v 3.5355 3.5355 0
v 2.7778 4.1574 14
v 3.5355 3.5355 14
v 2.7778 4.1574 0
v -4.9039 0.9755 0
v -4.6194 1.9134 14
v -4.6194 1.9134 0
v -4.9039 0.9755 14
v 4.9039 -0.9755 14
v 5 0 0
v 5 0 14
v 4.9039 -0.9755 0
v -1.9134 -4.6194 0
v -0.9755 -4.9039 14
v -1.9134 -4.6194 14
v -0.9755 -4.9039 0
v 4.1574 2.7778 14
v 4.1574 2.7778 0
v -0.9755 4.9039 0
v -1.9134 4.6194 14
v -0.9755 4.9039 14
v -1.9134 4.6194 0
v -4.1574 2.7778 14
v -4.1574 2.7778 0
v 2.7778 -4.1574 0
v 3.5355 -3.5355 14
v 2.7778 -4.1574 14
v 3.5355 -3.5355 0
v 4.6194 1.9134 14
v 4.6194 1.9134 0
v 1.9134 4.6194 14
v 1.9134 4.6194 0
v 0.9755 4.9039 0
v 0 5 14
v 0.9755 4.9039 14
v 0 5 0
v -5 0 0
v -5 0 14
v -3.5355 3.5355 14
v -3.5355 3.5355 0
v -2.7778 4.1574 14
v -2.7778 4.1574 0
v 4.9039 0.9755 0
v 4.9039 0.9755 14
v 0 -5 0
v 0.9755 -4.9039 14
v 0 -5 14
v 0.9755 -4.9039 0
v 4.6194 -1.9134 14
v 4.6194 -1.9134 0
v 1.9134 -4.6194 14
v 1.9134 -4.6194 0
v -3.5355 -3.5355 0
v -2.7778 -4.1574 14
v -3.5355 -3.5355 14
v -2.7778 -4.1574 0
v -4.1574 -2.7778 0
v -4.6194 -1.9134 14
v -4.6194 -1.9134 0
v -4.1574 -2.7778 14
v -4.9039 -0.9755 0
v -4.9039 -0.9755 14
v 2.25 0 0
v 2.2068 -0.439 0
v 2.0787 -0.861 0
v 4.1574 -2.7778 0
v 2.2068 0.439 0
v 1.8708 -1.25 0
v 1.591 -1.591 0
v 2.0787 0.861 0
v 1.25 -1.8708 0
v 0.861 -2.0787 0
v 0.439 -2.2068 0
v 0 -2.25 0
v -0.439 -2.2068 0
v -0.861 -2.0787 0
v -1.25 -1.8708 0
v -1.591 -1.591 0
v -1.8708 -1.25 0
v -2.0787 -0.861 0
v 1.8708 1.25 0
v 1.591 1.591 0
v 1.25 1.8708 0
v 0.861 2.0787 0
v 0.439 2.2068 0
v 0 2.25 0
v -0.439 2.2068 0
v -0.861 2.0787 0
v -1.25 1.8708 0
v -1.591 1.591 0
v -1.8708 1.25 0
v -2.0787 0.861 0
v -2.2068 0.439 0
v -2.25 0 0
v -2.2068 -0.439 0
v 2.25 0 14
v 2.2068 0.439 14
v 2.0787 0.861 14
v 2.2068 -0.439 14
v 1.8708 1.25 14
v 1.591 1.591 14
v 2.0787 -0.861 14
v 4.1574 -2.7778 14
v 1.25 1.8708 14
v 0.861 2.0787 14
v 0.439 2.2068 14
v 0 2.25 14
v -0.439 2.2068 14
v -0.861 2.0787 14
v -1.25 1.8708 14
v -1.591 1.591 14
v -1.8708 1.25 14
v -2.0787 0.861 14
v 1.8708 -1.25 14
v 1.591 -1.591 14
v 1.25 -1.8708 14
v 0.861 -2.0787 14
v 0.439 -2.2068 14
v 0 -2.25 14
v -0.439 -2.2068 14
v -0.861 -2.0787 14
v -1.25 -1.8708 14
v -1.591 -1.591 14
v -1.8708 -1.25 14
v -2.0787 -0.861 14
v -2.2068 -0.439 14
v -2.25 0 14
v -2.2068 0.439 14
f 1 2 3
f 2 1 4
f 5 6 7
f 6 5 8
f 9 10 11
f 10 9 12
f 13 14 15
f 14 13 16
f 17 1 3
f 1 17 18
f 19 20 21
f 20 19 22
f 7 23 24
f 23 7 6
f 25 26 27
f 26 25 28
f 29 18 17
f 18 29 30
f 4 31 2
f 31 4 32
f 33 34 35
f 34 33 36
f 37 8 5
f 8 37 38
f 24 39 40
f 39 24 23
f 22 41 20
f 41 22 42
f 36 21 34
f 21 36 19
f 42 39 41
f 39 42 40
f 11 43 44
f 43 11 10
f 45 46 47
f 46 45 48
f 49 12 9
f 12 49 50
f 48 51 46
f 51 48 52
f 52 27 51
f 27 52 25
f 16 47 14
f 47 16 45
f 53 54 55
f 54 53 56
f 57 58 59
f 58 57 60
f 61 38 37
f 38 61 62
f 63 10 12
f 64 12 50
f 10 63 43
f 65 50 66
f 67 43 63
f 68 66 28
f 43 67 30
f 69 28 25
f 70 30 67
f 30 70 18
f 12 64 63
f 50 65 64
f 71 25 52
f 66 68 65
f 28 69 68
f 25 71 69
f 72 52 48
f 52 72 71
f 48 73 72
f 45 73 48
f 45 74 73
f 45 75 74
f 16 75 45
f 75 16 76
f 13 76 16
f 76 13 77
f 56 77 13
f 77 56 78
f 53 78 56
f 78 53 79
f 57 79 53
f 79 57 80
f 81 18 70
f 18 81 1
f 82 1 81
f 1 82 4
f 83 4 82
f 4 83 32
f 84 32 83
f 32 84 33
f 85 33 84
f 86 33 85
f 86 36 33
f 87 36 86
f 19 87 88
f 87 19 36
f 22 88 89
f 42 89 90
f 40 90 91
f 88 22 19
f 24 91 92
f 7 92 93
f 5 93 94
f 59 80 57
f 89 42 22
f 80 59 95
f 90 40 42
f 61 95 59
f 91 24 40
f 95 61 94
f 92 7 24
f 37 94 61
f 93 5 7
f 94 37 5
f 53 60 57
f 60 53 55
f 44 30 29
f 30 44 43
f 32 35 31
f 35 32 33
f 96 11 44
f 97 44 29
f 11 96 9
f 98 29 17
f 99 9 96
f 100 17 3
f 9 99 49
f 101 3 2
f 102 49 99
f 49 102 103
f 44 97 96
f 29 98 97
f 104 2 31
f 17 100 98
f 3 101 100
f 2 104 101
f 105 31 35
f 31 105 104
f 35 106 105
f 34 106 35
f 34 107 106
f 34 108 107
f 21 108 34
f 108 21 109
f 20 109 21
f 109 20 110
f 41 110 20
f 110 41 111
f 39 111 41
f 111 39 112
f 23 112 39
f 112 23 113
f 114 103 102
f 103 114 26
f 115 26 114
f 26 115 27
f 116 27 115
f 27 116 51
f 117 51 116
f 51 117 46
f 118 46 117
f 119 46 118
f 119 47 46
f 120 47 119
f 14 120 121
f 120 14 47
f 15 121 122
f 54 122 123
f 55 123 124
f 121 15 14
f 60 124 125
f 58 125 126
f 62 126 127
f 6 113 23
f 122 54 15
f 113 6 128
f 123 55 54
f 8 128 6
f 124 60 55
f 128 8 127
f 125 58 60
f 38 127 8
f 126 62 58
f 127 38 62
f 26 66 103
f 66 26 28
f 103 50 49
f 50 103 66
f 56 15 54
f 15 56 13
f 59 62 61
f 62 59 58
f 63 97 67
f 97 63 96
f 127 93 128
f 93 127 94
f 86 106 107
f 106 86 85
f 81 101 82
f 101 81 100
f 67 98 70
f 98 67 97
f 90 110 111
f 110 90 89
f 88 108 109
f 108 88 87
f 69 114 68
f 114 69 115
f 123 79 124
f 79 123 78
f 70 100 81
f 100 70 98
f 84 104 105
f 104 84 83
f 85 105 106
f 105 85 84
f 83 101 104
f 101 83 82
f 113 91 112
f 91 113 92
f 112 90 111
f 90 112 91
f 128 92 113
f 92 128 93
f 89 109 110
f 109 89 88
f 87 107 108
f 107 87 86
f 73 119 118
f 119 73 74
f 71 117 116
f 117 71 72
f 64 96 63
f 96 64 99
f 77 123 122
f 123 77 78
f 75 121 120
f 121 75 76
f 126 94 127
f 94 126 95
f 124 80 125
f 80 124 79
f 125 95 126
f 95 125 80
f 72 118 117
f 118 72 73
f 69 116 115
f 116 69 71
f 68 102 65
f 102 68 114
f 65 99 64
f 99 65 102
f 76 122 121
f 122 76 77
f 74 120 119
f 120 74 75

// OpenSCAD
difference() {
    cylinder(d=10, h=14, $fn =32);
    cylinder(d=4.5, h=14, $fn =32);
}
